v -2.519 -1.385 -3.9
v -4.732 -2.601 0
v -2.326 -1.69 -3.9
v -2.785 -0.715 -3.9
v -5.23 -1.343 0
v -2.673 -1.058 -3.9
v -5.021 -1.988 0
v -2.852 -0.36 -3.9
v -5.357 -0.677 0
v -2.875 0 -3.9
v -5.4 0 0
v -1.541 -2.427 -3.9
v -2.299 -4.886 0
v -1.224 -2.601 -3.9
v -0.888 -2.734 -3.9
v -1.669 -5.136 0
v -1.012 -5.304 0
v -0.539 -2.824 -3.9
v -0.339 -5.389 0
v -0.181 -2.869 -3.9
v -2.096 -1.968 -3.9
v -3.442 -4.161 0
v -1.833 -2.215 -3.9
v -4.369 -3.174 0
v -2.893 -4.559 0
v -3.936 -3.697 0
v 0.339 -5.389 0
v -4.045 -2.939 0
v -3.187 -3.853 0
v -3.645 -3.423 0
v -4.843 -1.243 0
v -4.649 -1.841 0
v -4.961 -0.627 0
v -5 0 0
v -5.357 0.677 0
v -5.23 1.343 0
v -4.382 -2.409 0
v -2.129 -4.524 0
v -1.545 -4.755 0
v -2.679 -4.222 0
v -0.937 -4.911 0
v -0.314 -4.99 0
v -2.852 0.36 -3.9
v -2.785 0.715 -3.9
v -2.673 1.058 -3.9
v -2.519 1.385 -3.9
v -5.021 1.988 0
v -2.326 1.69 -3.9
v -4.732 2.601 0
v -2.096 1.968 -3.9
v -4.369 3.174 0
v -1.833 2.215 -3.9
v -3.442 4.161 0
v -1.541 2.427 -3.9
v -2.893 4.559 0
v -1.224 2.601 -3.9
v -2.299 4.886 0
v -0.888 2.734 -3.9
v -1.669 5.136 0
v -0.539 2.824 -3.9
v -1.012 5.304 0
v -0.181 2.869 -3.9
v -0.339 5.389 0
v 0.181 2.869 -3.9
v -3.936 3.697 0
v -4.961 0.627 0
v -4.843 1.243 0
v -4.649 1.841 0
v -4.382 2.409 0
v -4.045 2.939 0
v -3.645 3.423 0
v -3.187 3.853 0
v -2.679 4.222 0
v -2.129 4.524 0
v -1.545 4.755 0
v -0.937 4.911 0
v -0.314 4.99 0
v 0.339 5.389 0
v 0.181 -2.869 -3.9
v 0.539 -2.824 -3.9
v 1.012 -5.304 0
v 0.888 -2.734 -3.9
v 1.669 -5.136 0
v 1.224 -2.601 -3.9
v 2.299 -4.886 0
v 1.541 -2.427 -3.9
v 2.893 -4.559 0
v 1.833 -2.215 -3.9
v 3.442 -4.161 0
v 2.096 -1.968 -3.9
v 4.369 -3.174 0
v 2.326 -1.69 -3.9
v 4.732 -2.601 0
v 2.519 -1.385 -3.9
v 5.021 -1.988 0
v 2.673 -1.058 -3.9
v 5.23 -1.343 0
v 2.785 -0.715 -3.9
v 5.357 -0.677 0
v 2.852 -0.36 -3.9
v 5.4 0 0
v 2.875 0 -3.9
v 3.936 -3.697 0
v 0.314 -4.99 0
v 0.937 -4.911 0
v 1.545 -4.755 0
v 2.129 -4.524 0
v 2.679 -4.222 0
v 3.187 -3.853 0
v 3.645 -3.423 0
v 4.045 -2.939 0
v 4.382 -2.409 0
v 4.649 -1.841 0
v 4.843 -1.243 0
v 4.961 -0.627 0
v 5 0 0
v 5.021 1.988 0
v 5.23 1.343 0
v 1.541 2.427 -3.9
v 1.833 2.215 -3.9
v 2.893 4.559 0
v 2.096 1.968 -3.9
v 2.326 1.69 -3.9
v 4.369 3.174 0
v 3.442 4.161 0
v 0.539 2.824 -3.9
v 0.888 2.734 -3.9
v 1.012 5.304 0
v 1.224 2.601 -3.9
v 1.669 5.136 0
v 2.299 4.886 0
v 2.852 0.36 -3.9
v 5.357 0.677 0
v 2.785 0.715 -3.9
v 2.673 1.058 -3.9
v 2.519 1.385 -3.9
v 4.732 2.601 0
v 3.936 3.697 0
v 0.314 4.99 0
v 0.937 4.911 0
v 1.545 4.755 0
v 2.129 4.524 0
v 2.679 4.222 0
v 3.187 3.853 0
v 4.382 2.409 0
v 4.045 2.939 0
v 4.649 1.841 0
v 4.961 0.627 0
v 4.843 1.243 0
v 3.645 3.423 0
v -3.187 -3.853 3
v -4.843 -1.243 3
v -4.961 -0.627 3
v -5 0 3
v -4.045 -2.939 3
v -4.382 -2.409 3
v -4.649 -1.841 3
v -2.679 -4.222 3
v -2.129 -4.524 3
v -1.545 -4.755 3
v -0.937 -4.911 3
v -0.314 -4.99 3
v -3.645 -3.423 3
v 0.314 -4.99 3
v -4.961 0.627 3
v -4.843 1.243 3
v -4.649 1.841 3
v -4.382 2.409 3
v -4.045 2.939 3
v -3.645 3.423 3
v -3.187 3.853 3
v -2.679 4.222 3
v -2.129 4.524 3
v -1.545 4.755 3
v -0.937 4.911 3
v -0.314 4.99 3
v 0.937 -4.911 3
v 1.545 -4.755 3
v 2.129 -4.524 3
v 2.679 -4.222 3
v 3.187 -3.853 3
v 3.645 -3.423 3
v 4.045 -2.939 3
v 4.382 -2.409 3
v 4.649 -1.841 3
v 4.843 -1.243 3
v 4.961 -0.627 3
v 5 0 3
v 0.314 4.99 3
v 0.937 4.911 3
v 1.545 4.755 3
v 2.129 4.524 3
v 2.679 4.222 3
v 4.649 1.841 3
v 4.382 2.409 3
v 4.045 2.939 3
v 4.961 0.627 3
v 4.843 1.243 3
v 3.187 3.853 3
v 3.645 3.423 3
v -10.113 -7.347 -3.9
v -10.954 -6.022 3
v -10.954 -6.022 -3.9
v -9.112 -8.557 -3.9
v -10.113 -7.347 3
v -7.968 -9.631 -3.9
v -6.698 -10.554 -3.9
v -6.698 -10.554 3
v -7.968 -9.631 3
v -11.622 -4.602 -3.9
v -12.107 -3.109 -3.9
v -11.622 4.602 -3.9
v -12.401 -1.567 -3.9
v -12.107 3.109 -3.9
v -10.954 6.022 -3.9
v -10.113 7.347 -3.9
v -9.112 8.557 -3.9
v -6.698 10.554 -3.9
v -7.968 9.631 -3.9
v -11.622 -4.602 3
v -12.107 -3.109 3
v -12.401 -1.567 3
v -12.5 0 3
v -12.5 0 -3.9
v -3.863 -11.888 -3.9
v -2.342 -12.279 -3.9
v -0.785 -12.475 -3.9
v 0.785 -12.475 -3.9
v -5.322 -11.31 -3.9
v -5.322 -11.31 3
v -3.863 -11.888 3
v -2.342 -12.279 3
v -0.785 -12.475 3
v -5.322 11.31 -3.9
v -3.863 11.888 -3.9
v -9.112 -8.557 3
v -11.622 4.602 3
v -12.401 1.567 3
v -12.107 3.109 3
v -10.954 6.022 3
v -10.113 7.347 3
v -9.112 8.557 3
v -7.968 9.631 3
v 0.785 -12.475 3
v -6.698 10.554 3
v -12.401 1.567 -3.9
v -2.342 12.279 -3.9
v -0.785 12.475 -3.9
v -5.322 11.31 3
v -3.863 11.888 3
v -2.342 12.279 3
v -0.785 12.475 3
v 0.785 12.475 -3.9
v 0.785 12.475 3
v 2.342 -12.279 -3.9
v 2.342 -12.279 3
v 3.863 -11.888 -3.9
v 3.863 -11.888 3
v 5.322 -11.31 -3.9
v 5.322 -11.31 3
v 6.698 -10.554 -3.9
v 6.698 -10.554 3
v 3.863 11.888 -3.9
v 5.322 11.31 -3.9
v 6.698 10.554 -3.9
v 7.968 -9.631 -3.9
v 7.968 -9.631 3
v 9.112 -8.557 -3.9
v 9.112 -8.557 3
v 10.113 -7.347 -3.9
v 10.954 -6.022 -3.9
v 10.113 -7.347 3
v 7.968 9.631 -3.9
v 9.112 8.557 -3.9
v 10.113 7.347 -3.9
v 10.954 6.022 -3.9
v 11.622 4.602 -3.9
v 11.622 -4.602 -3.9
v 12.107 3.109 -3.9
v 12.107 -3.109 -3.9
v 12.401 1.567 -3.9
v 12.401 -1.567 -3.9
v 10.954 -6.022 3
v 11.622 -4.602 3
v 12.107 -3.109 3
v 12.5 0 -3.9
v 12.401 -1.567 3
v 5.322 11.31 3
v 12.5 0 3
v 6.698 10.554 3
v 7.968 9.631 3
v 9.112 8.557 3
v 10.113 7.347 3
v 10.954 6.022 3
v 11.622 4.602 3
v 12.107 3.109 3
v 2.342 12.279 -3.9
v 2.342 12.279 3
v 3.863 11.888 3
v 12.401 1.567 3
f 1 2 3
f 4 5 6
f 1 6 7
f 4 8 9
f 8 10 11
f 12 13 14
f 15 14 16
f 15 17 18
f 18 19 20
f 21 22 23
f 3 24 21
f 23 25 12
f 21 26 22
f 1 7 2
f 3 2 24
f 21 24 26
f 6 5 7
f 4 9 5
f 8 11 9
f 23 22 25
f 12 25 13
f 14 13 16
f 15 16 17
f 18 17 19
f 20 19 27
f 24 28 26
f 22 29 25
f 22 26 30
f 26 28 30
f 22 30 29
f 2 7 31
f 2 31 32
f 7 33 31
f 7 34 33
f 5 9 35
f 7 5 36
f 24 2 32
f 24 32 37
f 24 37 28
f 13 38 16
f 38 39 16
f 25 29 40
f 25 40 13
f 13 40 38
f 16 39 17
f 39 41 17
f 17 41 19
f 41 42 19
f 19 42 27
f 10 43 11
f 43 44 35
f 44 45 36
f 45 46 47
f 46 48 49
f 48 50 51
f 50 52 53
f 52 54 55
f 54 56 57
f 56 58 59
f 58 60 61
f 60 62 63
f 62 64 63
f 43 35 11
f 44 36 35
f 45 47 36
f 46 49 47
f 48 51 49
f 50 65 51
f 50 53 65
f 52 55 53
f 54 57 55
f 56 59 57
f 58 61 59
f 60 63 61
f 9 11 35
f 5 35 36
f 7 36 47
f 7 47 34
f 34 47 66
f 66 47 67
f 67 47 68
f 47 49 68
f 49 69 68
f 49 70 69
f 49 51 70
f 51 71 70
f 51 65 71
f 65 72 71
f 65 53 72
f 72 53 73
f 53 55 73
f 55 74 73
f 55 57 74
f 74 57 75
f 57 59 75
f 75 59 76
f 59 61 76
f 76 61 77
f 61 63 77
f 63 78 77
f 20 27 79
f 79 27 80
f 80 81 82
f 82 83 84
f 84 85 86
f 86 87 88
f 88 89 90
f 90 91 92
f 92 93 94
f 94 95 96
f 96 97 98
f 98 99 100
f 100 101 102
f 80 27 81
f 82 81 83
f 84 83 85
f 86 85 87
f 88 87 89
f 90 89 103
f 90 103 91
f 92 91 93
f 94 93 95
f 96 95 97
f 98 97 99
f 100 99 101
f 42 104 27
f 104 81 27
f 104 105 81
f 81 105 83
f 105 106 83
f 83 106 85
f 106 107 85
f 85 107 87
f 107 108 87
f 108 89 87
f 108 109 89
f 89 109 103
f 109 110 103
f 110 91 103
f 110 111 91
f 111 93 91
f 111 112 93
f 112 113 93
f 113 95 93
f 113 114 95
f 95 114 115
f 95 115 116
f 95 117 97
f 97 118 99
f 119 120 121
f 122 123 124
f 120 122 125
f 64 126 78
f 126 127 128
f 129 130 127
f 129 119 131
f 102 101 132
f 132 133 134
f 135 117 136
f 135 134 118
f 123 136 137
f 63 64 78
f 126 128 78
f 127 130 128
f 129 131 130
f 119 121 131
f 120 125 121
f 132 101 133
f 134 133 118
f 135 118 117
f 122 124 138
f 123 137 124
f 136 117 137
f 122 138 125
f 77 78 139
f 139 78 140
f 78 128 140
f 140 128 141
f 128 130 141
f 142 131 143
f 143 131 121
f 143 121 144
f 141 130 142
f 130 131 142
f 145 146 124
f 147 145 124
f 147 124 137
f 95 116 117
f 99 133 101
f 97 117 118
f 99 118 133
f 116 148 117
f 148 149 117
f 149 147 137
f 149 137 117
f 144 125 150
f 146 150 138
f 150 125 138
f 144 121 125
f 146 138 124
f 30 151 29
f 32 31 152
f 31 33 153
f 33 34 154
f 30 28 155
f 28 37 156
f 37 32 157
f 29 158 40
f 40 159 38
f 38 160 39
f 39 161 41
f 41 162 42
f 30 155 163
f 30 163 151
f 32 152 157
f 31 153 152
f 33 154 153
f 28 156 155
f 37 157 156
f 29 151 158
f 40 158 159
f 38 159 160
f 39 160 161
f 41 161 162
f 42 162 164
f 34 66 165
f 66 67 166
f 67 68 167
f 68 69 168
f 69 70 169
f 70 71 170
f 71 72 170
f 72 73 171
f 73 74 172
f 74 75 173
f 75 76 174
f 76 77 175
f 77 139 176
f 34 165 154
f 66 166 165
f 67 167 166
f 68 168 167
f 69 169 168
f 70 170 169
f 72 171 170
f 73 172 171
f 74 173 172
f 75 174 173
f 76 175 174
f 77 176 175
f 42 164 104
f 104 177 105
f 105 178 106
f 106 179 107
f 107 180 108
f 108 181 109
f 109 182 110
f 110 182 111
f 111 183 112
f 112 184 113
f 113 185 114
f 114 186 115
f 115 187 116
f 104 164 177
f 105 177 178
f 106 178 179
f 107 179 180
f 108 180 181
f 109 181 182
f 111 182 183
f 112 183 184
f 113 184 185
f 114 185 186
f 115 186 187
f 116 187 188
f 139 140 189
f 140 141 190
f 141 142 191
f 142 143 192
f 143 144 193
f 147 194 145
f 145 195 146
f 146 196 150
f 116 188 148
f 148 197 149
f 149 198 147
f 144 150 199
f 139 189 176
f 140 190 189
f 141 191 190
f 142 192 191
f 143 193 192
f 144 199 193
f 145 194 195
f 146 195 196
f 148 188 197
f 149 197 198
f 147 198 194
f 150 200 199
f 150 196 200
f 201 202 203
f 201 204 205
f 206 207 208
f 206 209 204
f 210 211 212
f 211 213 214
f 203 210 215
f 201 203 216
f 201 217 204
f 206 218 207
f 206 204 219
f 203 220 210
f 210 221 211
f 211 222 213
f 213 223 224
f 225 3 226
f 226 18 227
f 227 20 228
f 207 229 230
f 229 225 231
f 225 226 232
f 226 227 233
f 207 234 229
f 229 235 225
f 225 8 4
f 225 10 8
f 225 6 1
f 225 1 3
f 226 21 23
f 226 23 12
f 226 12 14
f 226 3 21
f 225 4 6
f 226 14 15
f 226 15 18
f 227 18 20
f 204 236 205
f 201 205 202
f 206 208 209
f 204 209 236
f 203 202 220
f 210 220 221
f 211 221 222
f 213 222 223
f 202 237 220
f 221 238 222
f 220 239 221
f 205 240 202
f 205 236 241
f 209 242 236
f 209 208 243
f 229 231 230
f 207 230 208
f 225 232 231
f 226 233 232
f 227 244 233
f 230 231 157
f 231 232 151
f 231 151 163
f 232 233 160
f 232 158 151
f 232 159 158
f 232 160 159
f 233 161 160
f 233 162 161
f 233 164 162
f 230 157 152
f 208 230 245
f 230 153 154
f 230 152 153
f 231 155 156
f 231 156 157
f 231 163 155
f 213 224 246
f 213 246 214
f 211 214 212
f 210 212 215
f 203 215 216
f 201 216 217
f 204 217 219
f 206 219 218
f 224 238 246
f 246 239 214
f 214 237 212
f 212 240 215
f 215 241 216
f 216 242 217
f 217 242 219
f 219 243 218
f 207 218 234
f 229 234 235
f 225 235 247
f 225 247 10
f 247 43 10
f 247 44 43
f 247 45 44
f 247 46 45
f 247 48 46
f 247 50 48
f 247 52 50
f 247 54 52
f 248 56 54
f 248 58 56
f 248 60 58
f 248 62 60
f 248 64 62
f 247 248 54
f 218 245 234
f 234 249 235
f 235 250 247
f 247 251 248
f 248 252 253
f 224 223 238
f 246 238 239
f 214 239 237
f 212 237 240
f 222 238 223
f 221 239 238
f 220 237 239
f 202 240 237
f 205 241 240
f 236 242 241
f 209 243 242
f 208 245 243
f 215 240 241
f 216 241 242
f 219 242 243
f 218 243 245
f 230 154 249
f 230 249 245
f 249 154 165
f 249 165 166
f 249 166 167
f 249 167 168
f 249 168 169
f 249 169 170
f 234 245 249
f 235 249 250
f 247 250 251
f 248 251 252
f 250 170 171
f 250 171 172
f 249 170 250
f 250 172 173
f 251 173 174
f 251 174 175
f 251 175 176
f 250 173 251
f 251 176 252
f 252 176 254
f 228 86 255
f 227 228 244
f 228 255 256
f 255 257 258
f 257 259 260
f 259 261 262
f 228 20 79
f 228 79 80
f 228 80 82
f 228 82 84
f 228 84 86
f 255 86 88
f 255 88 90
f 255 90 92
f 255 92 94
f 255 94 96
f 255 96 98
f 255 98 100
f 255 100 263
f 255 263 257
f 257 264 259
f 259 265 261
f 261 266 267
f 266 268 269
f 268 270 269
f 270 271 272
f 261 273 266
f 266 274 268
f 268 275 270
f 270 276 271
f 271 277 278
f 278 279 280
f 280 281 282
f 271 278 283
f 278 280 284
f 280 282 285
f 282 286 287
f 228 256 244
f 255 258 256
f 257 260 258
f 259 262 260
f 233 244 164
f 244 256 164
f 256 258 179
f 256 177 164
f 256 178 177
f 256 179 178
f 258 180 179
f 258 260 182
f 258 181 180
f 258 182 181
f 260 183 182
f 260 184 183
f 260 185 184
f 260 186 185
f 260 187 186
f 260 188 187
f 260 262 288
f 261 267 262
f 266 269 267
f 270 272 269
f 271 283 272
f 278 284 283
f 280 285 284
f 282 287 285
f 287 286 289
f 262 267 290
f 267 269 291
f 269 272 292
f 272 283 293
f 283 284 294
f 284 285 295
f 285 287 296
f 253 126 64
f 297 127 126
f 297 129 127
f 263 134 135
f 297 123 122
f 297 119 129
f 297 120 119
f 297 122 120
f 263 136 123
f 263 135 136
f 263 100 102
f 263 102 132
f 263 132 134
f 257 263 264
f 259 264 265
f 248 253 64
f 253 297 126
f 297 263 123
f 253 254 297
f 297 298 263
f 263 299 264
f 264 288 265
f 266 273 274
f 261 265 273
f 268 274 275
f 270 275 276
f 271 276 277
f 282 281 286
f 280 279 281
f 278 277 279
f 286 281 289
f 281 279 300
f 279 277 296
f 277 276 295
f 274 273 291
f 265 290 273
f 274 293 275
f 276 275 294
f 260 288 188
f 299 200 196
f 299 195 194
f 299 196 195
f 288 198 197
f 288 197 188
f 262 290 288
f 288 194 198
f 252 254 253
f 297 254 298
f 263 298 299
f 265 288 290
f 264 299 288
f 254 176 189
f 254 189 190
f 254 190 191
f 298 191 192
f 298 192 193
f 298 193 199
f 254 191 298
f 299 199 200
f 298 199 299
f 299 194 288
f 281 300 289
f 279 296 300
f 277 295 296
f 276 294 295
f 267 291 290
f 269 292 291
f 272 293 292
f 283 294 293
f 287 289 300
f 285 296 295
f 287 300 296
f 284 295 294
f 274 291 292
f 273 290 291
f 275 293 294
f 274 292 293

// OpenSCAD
$fn = 50;

difference() {
	union() {
		translate(v = [0, 0, -3.9000000000000004]) {
			cylinder(h = 6.9, r = 12.5);
		}
	}
	union() {
		translate(v = [0, 0, 0]) {
			rotate(a = [0, 0, 0]) {
				difference() {
					union() {
						translate(v = [0, 0, -6.9]) {
							cylinder(h = 6.9, r = 2.6);
						}
						translate(v = [0, 0, -3.9]) {
							cylinder(h = 3.9, r1 = 2.875, r2 = 5.4);
						}
						translate(v = [0, 0, -6.9]) {
							cylinder(h = 6.9, r = 2.875);
						}
						translate(v = [0, 0, -6.9]) {
							cylinder(h = 6.9, r = 2.6);
						}
					}
					union();
				}
			}
		}
		#cylinder(h = 3, r = 5.0);
	}
}
